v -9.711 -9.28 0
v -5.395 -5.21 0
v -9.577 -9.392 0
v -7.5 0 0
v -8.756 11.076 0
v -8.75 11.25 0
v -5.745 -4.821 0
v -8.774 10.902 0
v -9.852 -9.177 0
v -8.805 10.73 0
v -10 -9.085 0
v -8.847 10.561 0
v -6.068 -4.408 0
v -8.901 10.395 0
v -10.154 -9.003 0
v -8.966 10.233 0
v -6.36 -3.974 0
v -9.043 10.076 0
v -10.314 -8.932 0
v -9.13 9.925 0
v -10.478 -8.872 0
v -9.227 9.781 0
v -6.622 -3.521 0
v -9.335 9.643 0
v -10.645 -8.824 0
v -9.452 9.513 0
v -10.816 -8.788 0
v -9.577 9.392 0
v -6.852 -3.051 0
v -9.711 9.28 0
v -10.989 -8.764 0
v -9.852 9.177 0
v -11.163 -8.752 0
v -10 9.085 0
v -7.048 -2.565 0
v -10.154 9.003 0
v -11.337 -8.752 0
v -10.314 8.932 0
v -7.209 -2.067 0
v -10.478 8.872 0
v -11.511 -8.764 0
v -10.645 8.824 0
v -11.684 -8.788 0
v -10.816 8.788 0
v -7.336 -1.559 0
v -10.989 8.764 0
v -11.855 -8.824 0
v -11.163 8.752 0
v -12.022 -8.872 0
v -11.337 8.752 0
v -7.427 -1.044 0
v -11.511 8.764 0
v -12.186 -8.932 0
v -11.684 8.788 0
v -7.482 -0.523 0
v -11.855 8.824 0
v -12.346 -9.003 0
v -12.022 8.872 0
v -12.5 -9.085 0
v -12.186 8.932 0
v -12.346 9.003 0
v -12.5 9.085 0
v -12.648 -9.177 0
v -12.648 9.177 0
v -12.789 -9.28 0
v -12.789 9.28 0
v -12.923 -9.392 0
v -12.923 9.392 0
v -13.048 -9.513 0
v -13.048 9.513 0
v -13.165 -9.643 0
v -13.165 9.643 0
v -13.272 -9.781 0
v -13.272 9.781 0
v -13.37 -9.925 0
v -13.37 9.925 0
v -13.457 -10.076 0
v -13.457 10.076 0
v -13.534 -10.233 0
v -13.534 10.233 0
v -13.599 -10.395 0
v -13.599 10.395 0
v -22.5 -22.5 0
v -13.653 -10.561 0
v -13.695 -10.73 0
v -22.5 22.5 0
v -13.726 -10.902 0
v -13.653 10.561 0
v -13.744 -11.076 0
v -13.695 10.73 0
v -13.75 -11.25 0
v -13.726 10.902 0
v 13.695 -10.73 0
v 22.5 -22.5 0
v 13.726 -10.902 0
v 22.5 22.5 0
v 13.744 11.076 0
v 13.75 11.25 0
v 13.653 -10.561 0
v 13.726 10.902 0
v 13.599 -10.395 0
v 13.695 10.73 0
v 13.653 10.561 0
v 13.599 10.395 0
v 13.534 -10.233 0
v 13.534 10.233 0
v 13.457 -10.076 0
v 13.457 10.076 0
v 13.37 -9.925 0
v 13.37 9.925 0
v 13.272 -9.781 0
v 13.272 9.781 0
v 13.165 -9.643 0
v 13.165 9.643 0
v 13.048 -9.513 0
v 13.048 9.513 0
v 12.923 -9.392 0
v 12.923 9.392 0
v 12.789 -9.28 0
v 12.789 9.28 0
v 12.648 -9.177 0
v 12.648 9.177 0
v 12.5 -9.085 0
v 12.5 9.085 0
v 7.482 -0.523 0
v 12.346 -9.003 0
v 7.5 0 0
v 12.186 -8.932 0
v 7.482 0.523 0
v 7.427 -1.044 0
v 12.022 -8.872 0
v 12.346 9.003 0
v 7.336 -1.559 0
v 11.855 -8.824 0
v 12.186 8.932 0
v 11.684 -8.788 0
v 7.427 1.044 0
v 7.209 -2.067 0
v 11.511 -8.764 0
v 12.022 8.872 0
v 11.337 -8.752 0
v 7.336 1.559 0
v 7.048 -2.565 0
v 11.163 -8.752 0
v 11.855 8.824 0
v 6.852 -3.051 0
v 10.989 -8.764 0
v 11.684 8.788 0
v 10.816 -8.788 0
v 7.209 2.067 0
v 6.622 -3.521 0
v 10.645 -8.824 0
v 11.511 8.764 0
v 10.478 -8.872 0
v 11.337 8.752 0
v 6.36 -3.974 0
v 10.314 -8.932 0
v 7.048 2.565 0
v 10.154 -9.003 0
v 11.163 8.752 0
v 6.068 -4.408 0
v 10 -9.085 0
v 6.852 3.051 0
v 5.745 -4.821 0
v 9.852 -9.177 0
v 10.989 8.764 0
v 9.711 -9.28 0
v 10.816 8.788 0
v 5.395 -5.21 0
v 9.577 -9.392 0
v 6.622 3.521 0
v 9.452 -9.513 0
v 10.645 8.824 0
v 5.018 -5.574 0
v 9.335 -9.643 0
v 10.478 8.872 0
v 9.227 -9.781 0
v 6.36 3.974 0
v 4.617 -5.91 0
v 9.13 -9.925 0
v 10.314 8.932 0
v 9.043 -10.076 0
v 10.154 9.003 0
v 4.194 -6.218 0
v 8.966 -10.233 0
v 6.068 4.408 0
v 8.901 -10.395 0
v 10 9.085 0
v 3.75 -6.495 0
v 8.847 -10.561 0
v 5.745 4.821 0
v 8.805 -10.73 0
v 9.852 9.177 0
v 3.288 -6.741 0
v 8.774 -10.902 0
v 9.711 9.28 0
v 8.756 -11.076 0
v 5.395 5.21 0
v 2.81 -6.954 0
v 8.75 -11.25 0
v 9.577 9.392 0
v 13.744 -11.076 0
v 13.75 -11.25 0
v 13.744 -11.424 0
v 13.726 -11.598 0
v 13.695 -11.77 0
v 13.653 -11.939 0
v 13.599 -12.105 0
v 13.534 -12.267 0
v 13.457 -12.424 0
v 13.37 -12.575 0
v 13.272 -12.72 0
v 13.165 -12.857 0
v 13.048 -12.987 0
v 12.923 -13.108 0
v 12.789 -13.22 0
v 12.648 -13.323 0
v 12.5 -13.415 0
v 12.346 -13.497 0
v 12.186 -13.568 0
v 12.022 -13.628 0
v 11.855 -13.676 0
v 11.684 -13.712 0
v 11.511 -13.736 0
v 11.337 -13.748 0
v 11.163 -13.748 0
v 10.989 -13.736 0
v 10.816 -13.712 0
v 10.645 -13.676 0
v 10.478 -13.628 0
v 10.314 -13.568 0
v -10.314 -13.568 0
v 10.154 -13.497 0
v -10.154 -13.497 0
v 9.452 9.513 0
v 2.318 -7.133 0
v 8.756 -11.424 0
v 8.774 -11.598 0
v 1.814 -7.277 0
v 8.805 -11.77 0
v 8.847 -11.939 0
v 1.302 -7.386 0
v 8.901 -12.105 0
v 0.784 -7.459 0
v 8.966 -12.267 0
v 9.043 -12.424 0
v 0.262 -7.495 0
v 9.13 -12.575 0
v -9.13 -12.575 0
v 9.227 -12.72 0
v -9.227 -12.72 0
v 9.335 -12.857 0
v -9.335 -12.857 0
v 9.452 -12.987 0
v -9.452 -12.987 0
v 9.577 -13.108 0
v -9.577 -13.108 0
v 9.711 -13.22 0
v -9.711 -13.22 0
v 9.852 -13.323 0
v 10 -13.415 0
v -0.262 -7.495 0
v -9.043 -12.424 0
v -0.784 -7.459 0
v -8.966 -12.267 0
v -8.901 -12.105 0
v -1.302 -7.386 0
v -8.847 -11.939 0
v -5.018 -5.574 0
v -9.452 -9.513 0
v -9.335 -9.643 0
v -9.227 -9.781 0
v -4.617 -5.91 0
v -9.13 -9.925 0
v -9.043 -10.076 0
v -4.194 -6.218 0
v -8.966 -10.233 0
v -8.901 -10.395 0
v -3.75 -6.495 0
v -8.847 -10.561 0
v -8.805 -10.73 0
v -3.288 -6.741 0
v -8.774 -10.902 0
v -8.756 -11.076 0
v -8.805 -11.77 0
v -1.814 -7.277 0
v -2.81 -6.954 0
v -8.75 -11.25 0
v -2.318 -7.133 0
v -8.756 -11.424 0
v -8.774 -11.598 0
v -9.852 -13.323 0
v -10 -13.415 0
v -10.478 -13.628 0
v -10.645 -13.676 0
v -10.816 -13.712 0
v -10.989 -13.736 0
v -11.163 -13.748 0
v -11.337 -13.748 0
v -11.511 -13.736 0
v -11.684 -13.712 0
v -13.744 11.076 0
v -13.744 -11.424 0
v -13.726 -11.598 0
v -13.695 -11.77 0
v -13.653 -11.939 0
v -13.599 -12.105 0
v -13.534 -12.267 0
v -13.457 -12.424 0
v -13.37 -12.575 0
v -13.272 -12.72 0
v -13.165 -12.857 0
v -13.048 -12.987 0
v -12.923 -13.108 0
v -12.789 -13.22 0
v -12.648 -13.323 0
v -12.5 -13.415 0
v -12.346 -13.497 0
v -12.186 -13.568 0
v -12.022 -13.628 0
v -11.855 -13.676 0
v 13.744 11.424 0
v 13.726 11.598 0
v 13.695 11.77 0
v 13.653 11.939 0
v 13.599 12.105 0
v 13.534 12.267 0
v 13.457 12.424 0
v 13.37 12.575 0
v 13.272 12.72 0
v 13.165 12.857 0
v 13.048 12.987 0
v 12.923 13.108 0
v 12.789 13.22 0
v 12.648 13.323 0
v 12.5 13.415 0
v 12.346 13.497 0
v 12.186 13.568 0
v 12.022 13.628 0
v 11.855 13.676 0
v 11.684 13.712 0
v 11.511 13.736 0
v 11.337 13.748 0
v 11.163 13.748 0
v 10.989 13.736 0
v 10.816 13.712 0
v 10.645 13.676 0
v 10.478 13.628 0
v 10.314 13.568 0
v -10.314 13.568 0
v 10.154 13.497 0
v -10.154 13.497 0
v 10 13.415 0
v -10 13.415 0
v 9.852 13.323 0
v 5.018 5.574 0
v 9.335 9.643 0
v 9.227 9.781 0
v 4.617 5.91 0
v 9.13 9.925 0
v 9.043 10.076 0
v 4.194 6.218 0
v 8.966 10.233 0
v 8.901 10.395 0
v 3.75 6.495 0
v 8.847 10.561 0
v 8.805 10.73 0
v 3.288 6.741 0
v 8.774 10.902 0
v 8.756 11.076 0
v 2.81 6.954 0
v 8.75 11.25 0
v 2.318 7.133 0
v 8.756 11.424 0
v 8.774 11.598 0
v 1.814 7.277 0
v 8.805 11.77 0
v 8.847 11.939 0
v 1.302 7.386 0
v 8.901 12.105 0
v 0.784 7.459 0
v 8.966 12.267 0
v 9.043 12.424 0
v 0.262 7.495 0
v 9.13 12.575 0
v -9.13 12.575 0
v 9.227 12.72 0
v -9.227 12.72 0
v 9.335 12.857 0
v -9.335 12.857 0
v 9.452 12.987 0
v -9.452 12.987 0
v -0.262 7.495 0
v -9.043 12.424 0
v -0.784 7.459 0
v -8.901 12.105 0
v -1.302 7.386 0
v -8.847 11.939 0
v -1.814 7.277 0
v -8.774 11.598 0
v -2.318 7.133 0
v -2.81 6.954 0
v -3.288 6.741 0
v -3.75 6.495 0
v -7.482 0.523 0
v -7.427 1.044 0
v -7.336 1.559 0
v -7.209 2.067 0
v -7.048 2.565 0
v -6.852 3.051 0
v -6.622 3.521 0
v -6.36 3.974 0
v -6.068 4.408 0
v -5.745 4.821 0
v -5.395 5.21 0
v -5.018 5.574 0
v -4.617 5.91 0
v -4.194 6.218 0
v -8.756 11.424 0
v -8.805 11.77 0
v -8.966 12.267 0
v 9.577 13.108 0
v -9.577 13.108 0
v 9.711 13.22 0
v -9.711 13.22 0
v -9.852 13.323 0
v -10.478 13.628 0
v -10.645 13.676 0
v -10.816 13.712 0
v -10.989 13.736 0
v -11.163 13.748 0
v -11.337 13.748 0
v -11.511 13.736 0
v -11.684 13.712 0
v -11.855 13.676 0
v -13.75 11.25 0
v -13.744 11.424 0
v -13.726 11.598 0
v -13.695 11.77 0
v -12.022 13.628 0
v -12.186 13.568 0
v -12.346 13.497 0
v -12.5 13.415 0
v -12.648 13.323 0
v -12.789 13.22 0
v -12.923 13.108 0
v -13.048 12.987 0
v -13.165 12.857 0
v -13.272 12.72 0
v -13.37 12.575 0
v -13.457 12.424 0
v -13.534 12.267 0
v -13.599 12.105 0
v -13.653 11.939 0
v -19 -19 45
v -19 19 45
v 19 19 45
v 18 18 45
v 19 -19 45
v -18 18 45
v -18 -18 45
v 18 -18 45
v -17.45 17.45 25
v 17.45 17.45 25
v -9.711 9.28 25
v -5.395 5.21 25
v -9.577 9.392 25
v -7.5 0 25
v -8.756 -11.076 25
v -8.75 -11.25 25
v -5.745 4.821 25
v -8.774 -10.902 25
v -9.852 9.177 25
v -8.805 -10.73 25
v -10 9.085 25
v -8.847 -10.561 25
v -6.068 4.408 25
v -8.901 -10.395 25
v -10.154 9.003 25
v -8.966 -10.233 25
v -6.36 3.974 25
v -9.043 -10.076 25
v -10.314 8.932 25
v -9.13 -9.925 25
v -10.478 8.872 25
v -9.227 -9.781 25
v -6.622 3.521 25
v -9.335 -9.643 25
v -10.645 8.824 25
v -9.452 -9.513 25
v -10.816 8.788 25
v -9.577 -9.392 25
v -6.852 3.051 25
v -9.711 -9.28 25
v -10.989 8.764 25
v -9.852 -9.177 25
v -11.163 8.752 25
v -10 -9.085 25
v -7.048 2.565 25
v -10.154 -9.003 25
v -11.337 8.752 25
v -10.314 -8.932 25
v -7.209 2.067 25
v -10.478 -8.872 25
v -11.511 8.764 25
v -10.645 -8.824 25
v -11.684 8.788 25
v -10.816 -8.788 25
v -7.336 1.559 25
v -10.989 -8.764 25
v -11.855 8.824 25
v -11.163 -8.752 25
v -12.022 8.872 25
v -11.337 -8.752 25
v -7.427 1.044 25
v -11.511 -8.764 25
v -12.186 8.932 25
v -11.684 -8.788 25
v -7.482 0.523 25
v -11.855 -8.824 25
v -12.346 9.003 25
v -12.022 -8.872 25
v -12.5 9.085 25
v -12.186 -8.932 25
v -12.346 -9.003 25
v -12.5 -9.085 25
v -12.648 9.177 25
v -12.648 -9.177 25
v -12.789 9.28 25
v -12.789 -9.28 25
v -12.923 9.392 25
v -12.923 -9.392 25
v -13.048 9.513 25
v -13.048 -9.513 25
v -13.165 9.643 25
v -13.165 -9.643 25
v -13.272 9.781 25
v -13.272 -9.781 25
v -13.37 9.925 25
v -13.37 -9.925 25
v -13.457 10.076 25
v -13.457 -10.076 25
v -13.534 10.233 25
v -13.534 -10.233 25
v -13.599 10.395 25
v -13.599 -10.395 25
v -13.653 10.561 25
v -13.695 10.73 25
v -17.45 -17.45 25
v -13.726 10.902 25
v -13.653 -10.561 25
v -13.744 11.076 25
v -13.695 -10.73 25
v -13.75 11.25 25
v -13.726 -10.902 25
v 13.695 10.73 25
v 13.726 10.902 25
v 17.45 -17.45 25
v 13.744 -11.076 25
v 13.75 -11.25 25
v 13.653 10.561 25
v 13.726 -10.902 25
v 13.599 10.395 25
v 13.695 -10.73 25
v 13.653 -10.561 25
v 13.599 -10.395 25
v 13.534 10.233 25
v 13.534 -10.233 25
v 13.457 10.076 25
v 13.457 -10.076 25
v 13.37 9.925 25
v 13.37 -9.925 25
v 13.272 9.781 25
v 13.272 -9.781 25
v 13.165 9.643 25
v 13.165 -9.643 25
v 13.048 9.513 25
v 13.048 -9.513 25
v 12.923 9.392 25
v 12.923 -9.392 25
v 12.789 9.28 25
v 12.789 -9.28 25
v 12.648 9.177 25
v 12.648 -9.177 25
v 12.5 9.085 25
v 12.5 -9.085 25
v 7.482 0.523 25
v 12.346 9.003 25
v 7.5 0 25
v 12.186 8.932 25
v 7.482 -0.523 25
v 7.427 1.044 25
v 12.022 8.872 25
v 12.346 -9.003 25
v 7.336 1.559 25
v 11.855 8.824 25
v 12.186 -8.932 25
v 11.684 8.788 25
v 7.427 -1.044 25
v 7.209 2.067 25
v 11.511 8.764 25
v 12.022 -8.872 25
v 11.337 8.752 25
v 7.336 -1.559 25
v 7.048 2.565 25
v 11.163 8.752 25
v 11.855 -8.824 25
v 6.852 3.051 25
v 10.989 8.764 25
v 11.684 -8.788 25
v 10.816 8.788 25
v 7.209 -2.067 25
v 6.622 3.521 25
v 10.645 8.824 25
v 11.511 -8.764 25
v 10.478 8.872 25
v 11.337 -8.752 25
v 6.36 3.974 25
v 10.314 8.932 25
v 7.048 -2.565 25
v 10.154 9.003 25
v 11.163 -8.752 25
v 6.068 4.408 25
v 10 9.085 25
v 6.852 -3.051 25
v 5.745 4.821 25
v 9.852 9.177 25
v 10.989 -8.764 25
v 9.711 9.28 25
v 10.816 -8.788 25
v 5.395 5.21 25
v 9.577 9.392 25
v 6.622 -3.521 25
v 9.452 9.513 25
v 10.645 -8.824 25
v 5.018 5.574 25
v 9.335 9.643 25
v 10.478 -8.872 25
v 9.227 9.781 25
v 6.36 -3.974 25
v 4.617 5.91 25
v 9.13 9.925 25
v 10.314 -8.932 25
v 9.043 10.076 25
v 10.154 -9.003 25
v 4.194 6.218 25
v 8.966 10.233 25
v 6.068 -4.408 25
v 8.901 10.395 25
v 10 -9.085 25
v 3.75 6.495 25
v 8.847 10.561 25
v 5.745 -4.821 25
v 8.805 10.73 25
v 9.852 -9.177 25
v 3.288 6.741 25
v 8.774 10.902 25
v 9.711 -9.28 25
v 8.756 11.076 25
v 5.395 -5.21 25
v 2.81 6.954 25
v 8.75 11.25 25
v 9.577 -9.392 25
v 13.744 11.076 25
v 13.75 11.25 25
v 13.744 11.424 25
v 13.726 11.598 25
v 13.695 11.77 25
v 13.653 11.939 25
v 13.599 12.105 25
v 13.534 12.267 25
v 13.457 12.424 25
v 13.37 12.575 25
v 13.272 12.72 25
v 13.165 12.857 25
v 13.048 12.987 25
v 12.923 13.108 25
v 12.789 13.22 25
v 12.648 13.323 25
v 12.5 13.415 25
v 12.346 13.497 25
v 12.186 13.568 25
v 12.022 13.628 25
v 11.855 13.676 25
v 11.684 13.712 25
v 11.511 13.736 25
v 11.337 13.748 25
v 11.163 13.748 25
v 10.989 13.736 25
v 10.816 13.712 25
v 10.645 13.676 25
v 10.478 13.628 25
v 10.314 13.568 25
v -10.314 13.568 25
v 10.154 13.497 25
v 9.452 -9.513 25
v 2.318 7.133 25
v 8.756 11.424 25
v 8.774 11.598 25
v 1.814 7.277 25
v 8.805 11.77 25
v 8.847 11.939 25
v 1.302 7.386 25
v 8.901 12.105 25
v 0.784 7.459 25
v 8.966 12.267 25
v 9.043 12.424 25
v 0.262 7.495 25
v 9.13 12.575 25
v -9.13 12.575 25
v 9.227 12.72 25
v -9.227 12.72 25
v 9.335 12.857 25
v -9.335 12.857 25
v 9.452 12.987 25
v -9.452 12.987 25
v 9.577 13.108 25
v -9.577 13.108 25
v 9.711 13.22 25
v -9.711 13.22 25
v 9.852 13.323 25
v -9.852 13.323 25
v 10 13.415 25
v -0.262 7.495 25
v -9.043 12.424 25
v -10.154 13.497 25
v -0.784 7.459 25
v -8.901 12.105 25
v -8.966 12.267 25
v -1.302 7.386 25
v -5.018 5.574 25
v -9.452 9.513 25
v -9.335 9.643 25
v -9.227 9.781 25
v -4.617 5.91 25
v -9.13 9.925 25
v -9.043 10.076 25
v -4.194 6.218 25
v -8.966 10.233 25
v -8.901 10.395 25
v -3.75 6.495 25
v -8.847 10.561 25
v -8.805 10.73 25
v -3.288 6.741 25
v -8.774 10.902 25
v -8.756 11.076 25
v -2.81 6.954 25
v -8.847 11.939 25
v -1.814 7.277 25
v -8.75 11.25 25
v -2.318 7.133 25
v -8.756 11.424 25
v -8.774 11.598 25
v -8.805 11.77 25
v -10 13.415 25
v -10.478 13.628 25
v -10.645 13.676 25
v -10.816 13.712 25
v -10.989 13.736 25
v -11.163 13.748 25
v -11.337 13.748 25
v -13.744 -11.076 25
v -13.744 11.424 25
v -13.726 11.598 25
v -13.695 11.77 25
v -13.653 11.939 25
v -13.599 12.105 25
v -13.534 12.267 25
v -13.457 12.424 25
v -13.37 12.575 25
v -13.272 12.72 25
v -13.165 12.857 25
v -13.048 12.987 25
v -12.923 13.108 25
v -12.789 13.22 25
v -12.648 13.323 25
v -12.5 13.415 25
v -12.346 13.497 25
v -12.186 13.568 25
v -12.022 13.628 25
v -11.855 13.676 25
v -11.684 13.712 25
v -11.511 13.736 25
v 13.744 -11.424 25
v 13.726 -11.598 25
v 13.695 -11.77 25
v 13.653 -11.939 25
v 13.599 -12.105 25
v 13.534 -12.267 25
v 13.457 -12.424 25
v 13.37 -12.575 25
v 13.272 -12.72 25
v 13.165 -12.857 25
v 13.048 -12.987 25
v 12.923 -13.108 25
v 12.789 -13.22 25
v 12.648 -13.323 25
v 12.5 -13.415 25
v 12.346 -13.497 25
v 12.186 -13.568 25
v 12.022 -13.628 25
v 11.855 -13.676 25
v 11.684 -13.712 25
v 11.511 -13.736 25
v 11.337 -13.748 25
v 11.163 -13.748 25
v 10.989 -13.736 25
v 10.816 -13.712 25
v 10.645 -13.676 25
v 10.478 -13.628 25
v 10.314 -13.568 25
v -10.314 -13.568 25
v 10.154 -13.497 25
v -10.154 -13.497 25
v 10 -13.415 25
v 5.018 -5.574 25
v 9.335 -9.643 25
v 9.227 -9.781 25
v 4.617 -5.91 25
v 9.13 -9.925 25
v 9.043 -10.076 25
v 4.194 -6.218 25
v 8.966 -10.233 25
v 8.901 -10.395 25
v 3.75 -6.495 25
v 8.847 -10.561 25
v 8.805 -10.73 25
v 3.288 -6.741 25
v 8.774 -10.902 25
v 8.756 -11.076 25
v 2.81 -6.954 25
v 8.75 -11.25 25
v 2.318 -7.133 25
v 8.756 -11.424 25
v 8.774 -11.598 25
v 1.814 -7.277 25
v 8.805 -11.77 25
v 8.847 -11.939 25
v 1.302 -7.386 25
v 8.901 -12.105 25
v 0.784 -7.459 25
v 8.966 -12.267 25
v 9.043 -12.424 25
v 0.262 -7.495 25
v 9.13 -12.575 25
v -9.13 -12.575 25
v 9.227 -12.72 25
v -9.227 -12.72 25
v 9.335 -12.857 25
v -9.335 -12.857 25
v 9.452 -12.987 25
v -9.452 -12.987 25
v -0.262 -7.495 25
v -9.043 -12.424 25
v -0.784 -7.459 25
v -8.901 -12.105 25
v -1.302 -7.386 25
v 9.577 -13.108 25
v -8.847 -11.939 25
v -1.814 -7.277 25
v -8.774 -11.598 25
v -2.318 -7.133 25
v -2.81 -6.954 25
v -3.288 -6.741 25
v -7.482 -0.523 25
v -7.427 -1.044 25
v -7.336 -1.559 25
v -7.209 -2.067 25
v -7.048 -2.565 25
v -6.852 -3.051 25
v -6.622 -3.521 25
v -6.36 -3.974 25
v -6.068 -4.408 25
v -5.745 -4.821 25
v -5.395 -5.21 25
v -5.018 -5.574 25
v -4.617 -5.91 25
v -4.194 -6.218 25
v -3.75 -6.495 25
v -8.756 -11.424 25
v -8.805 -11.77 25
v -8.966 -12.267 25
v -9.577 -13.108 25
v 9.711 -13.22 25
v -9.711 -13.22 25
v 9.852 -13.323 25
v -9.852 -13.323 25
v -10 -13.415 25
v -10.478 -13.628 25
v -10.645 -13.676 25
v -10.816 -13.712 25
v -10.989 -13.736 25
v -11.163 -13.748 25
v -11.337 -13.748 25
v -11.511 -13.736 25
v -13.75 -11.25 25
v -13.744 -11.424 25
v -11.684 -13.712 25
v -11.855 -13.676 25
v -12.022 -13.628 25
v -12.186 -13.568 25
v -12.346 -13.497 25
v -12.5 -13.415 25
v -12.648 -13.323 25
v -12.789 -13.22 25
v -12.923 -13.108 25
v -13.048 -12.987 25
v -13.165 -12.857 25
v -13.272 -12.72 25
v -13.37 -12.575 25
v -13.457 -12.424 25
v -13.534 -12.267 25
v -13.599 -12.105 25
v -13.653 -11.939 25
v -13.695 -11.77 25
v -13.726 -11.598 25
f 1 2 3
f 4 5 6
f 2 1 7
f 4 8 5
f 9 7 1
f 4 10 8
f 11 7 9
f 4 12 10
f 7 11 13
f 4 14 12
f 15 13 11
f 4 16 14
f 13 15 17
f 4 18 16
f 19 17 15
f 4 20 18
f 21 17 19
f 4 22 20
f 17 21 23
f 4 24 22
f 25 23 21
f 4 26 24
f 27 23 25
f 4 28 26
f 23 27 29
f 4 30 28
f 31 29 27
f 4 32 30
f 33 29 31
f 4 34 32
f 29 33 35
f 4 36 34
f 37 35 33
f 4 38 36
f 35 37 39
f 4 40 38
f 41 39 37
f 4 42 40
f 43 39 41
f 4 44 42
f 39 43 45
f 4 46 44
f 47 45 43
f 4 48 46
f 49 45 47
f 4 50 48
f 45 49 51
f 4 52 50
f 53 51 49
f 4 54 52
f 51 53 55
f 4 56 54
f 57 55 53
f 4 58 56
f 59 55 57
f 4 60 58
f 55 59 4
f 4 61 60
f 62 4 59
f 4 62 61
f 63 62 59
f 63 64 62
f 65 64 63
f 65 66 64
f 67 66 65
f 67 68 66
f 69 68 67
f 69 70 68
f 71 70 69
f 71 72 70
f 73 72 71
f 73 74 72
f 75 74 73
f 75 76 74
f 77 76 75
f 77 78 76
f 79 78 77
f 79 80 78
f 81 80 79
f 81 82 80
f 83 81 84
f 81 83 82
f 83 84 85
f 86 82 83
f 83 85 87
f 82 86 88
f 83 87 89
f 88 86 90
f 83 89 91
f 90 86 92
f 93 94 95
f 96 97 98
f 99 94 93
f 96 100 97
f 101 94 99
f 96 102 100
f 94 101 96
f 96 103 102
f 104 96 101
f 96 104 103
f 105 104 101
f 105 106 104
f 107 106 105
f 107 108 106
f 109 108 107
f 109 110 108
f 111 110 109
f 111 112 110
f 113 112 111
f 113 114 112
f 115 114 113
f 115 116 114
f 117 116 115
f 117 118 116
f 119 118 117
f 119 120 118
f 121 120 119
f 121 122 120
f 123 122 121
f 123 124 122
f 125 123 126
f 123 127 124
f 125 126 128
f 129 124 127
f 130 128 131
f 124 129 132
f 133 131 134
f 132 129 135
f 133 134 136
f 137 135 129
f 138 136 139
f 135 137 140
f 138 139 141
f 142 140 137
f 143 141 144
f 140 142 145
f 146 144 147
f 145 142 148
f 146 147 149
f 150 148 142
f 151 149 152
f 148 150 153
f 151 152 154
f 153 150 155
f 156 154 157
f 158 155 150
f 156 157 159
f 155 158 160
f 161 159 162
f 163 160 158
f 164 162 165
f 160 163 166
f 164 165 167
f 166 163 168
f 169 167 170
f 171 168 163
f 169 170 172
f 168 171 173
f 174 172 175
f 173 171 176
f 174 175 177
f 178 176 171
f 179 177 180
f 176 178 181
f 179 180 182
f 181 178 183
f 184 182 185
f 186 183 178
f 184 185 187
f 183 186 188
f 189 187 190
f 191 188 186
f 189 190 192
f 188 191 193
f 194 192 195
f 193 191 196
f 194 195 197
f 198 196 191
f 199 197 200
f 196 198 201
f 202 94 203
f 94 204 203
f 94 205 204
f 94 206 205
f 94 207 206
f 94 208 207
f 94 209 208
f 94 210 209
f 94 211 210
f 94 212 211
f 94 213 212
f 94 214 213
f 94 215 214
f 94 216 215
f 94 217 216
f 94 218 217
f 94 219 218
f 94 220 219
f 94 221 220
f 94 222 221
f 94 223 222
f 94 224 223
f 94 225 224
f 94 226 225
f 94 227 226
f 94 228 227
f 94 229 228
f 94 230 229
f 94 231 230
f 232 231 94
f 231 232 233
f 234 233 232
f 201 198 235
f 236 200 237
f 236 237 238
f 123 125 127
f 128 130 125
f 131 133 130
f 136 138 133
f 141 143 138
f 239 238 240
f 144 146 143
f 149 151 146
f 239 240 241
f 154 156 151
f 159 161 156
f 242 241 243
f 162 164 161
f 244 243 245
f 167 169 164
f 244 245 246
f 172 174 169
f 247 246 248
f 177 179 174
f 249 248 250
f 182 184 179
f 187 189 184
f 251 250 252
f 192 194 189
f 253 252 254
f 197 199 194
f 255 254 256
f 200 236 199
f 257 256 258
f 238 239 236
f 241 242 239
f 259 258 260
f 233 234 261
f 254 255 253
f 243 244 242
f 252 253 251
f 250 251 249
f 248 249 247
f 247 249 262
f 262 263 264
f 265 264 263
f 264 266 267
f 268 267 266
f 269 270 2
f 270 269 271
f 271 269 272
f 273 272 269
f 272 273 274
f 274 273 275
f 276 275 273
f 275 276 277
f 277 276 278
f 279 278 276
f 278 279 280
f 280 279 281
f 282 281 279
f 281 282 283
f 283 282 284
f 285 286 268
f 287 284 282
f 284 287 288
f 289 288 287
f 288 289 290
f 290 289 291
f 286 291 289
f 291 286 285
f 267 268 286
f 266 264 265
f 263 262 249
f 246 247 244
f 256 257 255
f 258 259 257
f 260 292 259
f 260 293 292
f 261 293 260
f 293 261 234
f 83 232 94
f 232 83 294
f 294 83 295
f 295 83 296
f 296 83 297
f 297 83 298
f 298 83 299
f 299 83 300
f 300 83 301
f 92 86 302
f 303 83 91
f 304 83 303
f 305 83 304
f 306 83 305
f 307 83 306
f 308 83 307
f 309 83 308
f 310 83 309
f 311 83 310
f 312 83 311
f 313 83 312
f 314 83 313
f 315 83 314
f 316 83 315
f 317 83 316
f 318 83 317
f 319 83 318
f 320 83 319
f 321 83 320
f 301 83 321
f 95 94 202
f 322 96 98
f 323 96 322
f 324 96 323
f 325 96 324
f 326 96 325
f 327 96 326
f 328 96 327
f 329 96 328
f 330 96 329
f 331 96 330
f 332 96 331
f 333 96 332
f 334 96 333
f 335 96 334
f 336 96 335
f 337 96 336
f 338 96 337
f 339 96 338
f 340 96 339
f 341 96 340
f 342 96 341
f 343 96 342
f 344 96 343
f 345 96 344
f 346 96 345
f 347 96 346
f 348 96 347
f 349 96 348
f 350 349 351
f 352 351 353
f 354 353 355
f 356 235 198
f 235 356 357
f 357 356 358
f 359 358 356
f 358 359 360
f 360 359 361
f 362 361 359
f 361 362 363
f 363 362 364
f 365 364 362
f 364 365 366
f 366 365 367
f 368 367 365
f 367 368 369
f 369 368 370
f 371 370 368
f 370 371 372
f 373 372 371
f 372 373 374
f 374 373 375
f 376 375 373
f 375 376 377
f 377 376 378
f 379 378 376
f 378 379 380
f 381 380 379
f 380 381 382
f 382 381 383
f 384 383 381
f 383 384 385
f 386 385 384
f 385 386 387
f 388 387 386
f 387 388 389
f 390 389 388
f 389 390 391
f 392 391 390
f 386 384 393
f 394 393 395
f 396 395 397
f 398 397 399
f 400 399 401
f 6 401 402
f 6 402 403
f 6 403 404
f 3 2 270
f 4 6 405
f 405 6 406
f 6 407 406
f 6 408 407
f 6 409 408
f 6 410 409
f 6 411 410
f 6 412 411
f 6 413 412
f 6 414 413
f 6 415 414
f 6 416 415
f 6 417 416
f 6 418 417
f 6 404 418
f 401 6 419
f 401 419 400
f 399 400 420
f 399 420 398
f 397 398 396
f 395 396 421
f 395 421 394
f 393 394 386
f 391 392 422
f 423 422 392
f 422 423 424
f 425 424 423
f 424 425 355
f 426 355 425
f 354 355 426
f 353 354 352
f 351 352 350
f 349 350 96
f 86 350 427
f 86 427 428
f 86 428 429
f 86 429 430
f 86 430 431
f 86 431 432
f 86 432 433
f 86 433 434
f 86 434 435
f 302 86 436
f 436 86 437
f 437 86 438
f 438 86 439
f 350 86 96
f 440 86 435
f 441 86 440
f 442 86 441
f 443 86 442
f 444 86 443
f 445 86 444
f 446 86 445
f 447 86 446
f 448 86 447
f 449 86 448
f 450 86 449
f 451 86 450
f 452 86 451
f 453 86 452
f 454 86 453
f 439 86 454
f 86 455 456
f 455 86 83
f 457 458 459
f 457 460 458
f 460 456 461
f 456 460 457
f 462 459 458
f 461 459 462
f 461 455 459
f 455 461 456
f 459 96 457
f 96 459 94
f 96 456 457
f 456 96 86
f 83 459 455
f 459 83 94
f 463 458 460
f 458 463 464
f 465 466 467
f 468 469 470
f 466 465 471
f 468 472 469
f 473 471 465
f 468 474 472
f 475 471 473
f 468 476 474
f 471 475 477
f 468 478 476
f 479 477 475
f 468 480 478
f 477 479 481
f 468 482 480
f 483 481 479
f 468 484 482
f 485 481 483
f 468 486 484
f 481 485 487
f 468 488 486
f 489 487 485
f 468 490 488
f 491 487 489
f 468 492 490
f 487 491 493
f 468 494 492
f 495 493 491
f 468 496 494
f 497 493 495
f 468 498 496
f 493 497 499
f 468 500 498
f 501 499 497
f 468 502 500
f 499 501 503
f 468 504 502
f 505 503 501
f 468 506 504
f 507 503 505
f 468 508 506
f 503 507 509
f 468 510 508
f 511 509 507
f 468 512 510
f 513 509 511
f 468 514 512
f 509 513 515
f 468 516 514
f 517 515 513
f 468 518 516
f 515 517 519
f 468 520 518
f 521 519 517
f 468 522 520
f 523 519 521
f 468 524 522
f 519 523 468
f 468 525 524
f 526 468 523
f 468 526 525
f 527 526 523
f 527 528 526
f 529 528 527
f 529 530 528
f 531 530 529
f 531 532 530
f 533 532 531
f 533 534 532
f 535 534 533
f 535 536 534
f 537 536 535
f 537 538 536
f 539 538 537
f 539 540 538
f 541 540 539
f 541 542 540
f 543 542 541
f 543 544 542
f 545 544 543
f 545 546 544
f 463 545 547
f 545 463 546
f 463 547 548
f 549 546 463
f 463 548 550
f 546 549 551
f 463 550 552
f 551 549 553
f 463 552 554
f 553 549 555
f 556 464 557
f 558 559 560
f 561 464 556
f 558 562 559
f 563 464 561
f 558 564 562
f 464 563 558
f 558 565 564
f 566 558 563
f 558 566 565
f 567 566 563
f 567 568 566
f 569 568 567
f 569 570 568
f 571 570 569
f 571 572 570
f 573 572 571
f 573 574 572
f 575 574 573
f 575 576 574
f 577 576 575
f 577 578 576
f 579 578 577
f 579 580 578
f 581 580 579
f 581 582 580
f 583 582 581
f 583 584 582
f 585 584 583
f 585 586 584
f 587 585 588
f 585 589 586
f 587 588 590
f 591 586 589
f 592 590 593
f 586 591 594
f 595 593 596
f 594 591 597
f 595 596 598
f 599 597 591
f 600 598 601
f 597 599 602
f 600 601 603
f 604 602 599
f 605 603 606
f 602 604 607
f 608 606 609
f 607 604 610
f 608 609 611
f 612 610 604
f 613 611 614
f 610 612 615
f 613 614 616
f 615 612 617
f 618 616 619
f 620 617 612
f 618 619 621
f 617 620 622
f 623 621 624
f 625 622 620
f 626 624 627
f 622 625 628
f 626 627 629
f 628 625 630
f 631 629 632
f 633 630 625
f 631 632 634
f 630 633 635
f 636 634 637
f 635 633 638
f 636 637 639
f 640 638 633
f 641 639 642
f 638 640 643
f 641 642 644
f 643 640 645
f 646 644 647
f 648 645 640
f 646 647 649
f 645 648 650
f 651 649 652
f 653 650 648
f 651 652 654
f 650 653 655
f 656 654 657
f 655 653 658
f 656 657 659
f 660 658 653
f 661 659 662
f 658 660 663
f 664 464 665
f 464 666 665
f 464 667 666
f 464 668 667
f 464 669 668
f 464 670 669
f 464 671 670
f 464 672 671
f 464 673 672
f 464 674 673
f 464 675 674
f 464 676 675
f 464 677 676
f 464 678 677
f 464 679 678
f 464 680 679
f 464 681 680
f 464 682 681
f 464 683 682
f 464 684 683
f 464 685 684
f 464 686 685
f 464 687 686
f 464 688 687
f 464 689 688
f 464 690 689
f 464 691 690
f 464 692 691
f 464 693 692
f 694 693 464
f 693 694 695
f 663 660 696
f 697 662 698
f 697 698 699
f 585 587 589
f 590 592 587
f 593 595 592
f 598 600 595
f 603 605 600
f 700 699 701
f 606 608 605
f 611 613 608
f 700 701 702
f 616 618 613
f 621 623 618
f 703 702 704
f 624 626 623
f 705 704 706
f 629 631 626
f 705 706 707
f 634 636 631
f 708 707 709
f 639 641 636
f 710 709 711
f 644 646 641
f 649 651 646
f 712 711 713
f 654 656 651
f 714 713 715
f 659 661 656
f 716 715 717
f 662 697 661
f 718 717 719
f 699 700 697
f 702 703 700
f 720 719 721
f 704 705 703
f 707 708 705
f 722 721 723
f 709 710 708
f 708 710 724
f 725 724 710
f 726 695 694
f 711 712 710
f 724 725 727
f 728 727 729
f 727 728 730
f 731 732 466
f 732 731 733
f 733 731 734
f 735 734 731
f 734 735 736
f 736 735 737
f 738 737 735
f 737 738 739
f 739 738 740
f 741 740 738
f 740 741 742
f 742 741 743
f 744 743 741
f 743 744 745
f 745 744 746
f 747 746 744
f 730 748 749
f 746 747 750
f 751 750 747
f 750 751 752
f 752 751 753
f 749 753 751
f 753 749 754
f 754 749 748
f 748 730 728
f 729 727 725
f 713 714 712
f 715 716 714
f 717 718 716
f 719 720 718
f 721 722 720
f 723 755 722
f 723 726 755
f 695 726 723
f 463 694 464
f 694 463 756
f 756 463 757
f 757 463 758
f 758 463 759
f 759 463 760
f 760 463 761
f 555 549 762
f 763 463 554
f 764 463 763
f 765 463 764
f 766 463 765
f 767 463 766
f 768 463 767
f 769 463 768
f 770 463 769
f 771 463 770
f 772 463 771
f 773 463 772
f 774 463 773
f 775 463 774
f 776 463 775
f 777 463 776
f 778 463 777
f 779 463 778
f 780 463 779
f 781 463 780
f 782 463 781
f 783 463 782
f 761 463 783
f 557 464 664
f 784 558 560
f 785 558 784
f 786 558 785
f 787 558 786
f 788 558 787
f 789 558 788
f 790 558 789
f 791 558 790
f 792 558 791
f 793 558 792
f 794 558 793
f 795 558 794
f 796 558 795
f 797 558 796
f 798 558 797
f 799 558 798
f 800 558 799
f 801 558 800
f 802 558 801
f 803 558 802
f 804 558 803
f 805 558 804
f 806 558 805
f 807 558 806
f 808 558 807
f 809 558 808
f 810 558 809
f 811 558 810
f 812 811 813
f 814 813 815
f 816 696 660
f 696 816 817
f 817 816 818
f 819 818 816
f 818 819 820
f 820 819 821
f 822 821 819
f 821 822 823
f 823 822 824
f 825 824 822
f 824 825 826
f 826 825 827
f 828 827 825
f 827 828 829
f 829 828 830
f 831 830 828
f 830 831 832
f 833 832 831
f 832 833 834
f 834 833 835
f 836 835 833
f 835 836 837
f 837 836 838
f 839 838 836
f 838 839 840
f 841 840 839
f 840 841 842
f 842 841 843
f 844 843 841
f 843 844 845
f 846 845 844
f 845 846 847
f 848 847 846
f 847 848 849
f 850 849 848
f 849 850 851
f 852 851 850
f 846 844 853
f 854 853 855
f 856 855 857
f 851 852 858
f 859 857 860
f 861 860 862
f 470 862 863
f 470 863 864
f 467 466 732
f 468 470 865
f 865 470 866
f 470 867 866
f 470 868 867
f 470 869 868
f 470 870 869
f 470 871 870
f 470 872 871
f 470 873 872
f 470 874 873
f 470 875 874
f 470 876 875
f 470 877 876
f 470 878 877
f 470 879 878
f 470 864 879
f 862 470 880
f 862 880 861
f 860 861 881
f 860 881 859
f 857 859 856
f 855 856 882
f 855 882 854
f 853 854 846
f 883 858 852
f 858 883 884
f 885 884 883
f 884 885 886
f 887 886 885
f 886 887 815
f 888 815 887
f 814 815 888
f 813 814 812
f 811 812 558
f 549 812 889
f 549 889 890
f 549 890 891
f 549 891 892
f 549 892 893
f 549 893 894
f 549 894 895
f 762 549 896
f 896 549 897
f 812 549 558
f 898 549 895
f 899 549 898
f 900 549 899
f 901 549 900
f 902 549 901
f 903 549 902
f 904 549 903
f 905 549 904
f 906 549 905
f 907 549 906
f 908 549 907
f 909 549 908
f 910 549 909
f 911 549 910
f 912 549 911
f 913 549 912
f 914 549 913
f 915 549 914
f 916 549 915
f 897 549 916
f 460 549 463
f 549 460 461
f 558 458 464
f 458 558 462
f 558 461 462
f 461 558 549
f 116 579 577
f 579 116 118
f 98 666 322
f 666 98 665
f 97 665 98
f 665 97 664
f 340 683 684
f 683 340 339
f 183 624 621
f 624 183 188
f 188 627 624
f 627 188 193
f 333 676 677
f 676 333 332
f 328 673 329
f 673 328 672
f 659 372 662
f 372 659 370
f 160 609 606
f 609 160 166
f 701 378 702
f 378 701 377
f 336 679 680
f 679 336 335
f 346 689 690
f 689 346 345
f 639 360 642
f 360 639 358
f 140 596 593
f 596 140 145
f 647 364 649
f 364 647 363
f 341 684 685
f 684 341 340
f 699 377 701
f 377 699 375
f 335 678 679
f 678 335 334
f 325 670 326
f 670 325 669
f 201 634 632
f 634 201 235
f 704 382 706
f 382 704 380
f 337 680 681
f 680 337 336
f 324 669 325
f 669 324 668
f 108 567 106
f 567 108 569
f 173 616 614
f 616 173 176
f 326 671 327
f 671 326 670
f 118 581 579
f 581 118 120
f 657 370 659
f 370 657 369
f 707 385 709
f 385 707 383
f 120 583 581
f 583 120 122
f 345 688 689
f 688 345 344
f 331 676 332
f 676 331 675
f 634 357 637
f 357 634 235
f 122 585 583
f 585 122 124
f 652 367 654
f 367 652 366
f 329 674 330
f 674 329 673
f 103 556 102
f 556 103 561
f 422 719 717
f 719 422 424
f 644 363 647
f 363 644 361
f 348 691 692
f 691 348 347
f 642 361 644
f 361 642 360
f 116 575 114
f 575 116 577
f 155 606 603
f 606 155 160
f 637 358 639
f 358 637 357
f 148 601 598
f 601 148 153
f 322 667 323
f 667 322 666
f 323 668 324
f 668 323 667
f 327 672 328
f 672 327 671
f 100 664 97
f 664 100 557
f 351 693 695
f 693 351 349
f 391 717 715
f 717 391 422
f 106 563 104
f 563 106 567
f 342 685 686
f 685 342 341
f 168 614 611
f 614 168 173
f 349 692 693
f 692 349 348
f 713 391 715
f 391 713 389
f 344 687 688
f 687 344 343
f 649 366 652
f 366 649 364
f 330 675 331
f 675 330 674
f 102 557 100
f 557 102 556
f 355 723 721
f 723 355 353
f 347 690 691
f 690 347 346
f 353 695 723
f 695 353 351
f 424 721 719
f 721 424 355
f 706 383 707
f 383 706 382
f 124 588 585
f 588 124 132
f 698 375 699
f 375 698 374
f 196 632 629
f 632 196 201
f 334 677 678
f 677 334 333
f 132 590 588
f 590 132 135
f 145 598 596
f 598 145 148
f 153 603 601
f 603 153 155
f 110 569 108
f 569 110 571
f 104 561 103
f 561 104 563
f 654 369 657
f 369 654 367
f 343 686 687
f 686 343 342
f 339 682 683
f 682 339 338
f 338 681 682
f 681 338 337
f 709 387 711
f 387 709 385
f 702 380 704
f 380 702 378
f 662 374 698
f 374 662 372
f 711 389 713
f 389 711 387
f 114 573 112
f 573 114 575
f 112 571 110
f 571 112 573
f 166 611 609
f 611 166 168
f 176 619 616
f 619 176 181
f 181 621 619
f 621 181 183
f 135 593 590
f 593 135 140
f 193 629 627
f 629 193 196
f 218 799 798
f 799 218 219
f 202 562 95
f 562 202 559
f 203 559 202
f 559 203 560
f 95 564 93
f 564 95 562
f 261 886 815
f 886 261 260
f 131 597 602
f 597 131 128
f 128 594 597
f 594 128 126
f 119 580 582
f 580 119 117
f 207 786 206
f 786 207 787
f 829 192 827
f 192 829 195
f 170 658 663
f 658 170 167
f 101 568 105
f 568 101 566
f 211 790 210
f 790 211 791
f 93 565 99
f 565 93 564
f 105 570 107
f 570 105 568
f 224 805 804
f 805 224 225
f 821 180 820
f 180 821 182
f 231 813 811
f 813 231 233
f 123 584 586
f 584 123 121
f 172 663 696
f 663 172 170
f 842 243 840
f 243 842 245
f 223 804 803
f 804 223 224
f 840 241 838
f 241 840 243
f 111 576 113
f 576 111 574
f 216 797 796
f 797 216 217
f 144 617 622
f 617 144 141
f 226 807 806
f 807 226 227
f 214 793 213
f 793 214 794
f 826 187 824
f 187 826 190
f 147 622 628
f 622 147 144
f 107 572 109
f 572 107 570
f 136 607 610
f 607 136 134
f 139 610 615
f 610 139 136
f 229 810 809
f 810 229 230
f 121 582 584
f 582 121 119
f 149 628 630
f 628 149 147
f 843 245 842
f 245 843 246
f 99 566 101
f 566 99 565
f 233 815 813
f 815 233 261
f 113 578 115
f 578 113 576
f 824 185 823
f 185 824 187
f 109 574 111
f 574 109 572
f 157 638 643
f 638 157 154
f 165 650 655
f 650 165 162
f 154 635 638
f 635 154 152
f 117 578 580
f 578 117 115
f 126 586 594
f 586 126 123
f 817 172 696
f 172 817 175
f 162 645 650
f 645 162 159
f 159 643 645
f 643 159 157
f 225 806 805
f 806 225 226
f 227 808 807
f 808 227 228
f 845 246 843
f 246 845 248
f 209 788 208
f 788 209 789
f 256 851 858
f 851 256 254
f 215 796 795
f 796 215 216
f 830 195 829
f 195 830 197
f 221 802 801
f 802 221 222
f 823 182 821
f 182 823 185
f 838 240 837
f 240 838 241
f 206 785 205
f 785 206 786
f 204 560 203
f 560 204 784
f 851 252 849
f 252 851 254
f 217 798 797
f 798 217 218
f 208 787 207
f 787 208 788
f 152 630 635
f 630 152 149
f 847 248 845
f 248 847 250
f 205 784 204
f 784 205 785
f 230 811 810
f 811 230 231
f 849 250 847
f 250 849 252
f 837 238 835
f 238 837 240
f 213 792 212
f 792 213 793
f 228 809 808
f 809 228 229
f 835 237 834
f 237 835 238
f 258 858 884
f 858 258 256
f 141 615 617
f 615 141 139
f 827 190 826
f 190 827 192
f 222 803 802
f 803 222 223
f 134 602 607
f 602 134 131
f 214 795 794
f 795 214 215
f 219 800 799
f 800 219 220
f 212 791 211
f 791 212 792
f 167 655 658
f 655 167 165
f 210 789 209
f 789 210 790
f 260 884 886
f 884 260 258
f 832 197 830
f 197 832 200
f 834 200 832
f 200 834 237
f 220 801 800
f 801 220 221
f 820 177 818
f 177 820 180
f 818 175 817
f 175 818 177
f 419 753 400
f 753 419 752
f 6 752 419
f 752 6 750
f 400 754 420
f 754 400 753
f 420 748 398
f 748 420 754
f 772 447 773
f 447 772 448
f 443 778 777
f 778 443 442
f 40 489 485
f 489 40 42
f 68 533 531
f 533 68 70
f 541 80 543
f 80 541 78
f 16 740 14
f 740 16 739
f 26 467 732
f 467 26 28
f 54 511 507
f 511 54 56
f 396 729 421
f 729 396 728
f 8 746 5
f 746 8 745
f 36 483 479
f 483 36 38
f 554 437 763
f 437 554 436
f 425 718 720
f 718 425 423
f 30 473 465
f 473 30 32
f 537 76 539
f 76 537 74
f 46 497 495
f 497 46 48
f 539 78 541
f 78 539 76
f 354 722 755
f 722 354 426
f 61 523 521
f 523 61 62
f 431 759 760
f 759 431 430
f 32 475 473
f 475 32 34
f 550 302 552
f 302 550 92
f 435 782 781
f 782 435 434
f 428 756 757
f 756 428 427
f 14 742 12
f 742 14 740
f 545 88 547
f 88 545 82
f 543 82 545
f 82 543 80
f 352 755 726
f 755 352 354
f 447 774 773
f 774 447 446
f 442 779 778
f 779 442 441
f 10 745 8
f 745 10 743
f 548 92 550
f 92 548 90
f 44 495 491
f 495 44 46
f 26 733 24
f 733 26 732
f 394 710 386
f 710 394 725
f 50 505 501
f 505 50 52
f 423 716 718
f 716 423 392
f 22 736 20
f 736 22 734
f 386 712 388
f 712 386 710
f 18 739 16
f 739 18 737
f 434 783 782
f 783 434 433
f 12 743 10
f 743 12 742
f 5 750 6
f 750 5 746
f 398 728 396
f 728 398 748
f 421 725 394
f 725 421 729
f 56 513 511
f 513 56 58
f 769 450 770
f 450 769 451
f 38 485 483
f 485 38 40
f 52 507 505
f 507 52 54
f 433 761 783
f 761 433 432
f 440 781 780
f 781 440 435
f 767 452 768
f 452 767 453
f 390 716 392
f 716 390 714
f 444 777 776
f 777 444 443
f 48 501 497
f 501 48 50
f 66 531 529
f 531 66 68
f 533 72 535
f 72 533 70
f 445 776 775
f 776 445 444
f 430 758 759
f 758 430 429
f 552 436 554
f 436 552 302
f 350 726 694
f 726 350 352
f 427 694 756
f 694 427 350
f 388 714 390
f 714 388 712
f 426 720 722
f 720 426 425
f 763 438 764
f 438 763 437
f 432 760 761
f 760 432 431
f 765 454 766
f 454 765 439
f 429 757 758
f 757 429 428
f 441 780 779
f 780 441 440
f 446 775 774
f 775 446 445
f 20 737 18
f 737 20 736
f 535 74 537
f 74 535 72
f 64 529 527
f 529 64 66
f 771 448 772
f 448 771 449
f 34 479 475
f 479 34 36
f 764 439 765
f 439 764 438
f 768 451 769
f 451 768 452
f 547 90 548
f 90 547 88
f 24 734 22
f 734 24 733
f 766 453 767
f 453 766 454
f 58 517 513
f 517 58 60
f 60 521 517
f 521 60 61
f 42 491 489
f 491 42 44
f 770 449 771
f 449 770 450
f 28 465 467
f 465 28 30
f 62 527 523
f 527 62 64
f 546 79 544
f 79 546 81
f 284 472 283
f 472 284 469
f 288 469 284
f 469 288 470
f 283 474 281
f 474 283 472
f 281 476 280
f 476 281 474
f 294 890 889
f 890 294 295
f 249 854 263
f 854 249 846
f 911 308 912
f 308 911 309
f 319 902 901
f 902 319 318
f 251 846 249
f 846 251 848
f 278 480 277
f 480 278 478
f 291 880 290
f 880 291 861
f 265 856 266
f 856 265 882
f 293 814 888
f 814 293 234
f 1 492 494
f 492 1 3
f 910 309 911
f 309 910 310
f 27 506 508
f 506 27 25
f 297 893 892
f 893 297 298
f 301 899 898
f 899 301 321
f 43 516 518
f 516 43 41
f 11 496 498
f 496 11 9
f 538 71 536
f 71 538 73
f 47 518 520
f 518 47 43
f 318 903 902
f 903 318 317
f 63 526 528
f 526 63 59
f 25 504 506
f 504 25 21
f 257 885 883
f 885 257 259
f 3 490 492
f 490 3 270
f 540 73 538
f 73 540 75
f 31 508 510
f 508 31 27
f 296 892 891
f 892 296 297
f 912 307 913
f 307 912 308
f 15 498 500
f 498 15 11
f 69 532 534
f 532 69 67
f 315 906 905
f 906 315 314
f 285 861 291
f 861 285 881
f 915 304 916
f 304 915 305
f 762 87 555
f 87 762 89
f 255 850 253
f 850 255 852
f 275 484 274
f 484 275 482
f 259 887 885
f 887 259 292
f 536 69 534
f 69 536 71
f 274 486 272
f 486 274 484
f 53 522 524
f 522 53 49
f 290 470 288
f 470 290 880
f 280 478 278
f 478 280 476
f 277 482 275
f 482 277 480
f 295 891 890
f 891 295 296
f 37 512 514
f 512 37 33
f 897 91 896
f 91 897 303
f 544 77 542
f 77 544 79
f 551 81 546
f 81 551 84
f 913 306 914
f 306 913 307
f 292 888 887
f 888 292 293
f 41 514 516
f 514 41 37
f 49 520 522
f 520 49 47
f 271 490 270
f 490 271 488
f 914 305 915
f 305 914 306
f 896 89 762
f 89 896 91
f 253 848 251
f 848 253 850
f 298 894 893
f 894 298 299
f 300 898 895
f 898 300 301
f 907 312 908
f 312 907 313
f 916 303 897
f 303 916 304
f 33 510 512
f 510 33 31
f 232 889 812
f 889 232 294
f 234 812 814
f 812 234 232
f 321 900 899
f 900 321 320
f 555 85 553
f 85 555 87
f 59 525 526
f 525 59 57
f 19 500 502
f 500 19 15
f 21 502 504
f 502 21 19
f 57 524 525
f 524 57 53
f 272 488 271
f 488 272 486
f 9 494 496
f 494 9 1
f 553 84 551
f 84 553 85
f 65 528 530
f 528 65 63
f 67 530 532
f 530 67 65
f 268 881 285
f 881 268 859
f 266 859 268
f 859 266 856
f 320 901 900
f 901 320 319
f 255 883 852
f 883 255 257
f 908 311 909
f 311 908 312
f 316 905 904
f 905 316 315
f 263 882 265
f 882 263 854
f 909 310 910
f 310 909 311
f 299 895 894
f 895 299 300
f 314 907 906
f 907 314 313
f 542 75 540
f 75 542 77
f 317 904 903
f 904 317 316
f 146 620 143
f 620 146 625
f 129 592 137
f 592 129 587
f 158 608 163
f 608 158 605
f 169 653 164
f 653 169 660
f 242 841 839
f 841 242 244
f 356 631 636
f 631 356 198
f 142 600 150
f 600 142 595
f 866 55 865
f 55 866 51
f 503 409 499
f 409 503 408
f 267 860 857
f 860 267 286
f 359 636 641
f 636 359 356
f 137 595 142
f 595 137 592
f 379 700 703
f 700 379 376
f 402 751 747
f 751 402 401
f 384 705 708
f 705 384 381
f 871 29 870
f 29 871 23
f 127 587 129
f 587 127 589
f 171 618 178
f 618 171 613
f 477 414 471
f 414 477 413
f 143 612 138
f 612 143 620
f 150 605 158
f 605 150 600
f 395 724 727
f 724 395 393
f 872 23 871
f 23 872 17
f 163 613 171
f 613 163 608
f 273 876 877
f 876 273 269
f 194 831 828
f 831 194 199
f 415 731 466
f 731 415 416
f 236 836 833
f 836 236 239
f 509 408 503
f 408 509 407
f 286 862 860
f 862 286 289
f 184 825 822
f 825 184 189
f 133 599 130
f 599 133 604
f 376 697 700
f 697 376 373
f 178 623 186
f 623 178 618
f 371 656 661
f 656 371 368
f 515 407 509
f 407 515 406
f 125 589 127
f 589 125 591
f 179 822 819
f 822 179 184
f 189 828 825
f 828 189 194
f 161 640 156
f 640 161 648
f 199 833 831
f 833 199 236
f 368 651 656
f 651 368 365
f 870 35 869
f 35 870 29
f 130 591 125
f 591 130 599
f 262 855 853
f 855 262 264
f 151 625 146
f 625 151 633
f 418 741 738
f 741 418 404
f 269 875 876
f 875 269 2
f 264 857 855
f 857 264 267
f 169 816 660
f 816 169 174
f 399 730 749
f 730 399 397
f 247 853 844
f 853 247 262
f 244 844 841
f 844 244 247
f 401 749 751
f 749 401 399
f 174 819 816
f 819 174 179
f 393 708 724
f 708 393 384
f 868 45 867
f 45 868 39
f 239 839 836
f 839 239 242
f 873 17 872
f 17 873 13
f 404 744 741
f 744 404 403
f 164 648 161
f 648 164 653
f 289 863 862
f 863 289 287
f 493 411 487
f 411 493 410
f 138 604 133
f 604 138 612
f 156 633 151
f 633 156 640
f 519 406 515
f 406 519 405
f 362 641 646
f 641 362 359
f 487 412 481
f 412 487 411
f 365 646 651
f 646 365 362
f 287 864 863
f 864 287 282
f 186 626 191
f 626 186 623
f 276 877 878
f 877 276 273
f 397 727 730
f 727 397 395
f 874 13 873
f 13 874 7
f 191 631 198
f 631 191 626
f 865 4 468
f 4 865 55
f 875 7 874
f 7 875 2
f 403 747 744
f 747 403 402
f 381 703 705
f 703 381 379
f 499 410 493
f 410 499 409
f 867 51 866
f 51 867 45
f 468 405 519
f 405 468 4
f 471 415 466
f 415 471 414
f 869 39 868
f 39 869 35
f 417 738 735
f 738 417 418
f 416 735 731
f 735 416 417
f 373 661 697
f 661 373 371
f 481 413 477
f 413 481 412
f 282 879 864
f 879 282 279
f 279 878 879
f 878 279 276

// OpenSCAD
$fn = 90;

bottomHeight = 25;

innerTopSideLength = 36;
innerBottomSideLength = 34.9;
innerHeight = 20;

outterTopSideLength = innerTopSideLength+2;
outterBottomSideLength = 45;
outterHeight = bottomHeight+innerHeight;

difference(){
	scaleFactor = outterTopSideLength / outterBottomSideLength;
	linear_extrude(height=outterHeight, scale=[scaleFactor, scaleFactor])
		square([outterBottomSideLength, outterBottomSideLength], center = true);

	#translate([0, 0, bottomHeight]){
		scaleFactor = innerTopSideLength / innerBottomSideLength;
		linear_extrude(height=innerHeight, scale=[scaleFactor, scaleFactor])
			square([innerBottomSideLength, innerBottomSideLength], center = true);
	}
	
	diameter = 5;
	#translate([outterBottomSideLength/4, outterBottomSideLength/4, 0])
		cylinder(d=diameter, h=outterHeight);
	#translate([outterBottomSideLength/4, -outterBottomSideLength/4, 0])
		cylinder(d=diameter, h=outterHeight);
	#translate([-outterBottomSideLength/4, outterBottomSideLength/4, 0])
		cylinder(d=diameter, h=outterHeight);
	#translate([-outterBottomSideLength/4, -outterBottomSideLength/4, 0])
		cylinder(d=diameter, h=outterHeight);
	
	#cylinder(d=15, h=outterHeight);
}
